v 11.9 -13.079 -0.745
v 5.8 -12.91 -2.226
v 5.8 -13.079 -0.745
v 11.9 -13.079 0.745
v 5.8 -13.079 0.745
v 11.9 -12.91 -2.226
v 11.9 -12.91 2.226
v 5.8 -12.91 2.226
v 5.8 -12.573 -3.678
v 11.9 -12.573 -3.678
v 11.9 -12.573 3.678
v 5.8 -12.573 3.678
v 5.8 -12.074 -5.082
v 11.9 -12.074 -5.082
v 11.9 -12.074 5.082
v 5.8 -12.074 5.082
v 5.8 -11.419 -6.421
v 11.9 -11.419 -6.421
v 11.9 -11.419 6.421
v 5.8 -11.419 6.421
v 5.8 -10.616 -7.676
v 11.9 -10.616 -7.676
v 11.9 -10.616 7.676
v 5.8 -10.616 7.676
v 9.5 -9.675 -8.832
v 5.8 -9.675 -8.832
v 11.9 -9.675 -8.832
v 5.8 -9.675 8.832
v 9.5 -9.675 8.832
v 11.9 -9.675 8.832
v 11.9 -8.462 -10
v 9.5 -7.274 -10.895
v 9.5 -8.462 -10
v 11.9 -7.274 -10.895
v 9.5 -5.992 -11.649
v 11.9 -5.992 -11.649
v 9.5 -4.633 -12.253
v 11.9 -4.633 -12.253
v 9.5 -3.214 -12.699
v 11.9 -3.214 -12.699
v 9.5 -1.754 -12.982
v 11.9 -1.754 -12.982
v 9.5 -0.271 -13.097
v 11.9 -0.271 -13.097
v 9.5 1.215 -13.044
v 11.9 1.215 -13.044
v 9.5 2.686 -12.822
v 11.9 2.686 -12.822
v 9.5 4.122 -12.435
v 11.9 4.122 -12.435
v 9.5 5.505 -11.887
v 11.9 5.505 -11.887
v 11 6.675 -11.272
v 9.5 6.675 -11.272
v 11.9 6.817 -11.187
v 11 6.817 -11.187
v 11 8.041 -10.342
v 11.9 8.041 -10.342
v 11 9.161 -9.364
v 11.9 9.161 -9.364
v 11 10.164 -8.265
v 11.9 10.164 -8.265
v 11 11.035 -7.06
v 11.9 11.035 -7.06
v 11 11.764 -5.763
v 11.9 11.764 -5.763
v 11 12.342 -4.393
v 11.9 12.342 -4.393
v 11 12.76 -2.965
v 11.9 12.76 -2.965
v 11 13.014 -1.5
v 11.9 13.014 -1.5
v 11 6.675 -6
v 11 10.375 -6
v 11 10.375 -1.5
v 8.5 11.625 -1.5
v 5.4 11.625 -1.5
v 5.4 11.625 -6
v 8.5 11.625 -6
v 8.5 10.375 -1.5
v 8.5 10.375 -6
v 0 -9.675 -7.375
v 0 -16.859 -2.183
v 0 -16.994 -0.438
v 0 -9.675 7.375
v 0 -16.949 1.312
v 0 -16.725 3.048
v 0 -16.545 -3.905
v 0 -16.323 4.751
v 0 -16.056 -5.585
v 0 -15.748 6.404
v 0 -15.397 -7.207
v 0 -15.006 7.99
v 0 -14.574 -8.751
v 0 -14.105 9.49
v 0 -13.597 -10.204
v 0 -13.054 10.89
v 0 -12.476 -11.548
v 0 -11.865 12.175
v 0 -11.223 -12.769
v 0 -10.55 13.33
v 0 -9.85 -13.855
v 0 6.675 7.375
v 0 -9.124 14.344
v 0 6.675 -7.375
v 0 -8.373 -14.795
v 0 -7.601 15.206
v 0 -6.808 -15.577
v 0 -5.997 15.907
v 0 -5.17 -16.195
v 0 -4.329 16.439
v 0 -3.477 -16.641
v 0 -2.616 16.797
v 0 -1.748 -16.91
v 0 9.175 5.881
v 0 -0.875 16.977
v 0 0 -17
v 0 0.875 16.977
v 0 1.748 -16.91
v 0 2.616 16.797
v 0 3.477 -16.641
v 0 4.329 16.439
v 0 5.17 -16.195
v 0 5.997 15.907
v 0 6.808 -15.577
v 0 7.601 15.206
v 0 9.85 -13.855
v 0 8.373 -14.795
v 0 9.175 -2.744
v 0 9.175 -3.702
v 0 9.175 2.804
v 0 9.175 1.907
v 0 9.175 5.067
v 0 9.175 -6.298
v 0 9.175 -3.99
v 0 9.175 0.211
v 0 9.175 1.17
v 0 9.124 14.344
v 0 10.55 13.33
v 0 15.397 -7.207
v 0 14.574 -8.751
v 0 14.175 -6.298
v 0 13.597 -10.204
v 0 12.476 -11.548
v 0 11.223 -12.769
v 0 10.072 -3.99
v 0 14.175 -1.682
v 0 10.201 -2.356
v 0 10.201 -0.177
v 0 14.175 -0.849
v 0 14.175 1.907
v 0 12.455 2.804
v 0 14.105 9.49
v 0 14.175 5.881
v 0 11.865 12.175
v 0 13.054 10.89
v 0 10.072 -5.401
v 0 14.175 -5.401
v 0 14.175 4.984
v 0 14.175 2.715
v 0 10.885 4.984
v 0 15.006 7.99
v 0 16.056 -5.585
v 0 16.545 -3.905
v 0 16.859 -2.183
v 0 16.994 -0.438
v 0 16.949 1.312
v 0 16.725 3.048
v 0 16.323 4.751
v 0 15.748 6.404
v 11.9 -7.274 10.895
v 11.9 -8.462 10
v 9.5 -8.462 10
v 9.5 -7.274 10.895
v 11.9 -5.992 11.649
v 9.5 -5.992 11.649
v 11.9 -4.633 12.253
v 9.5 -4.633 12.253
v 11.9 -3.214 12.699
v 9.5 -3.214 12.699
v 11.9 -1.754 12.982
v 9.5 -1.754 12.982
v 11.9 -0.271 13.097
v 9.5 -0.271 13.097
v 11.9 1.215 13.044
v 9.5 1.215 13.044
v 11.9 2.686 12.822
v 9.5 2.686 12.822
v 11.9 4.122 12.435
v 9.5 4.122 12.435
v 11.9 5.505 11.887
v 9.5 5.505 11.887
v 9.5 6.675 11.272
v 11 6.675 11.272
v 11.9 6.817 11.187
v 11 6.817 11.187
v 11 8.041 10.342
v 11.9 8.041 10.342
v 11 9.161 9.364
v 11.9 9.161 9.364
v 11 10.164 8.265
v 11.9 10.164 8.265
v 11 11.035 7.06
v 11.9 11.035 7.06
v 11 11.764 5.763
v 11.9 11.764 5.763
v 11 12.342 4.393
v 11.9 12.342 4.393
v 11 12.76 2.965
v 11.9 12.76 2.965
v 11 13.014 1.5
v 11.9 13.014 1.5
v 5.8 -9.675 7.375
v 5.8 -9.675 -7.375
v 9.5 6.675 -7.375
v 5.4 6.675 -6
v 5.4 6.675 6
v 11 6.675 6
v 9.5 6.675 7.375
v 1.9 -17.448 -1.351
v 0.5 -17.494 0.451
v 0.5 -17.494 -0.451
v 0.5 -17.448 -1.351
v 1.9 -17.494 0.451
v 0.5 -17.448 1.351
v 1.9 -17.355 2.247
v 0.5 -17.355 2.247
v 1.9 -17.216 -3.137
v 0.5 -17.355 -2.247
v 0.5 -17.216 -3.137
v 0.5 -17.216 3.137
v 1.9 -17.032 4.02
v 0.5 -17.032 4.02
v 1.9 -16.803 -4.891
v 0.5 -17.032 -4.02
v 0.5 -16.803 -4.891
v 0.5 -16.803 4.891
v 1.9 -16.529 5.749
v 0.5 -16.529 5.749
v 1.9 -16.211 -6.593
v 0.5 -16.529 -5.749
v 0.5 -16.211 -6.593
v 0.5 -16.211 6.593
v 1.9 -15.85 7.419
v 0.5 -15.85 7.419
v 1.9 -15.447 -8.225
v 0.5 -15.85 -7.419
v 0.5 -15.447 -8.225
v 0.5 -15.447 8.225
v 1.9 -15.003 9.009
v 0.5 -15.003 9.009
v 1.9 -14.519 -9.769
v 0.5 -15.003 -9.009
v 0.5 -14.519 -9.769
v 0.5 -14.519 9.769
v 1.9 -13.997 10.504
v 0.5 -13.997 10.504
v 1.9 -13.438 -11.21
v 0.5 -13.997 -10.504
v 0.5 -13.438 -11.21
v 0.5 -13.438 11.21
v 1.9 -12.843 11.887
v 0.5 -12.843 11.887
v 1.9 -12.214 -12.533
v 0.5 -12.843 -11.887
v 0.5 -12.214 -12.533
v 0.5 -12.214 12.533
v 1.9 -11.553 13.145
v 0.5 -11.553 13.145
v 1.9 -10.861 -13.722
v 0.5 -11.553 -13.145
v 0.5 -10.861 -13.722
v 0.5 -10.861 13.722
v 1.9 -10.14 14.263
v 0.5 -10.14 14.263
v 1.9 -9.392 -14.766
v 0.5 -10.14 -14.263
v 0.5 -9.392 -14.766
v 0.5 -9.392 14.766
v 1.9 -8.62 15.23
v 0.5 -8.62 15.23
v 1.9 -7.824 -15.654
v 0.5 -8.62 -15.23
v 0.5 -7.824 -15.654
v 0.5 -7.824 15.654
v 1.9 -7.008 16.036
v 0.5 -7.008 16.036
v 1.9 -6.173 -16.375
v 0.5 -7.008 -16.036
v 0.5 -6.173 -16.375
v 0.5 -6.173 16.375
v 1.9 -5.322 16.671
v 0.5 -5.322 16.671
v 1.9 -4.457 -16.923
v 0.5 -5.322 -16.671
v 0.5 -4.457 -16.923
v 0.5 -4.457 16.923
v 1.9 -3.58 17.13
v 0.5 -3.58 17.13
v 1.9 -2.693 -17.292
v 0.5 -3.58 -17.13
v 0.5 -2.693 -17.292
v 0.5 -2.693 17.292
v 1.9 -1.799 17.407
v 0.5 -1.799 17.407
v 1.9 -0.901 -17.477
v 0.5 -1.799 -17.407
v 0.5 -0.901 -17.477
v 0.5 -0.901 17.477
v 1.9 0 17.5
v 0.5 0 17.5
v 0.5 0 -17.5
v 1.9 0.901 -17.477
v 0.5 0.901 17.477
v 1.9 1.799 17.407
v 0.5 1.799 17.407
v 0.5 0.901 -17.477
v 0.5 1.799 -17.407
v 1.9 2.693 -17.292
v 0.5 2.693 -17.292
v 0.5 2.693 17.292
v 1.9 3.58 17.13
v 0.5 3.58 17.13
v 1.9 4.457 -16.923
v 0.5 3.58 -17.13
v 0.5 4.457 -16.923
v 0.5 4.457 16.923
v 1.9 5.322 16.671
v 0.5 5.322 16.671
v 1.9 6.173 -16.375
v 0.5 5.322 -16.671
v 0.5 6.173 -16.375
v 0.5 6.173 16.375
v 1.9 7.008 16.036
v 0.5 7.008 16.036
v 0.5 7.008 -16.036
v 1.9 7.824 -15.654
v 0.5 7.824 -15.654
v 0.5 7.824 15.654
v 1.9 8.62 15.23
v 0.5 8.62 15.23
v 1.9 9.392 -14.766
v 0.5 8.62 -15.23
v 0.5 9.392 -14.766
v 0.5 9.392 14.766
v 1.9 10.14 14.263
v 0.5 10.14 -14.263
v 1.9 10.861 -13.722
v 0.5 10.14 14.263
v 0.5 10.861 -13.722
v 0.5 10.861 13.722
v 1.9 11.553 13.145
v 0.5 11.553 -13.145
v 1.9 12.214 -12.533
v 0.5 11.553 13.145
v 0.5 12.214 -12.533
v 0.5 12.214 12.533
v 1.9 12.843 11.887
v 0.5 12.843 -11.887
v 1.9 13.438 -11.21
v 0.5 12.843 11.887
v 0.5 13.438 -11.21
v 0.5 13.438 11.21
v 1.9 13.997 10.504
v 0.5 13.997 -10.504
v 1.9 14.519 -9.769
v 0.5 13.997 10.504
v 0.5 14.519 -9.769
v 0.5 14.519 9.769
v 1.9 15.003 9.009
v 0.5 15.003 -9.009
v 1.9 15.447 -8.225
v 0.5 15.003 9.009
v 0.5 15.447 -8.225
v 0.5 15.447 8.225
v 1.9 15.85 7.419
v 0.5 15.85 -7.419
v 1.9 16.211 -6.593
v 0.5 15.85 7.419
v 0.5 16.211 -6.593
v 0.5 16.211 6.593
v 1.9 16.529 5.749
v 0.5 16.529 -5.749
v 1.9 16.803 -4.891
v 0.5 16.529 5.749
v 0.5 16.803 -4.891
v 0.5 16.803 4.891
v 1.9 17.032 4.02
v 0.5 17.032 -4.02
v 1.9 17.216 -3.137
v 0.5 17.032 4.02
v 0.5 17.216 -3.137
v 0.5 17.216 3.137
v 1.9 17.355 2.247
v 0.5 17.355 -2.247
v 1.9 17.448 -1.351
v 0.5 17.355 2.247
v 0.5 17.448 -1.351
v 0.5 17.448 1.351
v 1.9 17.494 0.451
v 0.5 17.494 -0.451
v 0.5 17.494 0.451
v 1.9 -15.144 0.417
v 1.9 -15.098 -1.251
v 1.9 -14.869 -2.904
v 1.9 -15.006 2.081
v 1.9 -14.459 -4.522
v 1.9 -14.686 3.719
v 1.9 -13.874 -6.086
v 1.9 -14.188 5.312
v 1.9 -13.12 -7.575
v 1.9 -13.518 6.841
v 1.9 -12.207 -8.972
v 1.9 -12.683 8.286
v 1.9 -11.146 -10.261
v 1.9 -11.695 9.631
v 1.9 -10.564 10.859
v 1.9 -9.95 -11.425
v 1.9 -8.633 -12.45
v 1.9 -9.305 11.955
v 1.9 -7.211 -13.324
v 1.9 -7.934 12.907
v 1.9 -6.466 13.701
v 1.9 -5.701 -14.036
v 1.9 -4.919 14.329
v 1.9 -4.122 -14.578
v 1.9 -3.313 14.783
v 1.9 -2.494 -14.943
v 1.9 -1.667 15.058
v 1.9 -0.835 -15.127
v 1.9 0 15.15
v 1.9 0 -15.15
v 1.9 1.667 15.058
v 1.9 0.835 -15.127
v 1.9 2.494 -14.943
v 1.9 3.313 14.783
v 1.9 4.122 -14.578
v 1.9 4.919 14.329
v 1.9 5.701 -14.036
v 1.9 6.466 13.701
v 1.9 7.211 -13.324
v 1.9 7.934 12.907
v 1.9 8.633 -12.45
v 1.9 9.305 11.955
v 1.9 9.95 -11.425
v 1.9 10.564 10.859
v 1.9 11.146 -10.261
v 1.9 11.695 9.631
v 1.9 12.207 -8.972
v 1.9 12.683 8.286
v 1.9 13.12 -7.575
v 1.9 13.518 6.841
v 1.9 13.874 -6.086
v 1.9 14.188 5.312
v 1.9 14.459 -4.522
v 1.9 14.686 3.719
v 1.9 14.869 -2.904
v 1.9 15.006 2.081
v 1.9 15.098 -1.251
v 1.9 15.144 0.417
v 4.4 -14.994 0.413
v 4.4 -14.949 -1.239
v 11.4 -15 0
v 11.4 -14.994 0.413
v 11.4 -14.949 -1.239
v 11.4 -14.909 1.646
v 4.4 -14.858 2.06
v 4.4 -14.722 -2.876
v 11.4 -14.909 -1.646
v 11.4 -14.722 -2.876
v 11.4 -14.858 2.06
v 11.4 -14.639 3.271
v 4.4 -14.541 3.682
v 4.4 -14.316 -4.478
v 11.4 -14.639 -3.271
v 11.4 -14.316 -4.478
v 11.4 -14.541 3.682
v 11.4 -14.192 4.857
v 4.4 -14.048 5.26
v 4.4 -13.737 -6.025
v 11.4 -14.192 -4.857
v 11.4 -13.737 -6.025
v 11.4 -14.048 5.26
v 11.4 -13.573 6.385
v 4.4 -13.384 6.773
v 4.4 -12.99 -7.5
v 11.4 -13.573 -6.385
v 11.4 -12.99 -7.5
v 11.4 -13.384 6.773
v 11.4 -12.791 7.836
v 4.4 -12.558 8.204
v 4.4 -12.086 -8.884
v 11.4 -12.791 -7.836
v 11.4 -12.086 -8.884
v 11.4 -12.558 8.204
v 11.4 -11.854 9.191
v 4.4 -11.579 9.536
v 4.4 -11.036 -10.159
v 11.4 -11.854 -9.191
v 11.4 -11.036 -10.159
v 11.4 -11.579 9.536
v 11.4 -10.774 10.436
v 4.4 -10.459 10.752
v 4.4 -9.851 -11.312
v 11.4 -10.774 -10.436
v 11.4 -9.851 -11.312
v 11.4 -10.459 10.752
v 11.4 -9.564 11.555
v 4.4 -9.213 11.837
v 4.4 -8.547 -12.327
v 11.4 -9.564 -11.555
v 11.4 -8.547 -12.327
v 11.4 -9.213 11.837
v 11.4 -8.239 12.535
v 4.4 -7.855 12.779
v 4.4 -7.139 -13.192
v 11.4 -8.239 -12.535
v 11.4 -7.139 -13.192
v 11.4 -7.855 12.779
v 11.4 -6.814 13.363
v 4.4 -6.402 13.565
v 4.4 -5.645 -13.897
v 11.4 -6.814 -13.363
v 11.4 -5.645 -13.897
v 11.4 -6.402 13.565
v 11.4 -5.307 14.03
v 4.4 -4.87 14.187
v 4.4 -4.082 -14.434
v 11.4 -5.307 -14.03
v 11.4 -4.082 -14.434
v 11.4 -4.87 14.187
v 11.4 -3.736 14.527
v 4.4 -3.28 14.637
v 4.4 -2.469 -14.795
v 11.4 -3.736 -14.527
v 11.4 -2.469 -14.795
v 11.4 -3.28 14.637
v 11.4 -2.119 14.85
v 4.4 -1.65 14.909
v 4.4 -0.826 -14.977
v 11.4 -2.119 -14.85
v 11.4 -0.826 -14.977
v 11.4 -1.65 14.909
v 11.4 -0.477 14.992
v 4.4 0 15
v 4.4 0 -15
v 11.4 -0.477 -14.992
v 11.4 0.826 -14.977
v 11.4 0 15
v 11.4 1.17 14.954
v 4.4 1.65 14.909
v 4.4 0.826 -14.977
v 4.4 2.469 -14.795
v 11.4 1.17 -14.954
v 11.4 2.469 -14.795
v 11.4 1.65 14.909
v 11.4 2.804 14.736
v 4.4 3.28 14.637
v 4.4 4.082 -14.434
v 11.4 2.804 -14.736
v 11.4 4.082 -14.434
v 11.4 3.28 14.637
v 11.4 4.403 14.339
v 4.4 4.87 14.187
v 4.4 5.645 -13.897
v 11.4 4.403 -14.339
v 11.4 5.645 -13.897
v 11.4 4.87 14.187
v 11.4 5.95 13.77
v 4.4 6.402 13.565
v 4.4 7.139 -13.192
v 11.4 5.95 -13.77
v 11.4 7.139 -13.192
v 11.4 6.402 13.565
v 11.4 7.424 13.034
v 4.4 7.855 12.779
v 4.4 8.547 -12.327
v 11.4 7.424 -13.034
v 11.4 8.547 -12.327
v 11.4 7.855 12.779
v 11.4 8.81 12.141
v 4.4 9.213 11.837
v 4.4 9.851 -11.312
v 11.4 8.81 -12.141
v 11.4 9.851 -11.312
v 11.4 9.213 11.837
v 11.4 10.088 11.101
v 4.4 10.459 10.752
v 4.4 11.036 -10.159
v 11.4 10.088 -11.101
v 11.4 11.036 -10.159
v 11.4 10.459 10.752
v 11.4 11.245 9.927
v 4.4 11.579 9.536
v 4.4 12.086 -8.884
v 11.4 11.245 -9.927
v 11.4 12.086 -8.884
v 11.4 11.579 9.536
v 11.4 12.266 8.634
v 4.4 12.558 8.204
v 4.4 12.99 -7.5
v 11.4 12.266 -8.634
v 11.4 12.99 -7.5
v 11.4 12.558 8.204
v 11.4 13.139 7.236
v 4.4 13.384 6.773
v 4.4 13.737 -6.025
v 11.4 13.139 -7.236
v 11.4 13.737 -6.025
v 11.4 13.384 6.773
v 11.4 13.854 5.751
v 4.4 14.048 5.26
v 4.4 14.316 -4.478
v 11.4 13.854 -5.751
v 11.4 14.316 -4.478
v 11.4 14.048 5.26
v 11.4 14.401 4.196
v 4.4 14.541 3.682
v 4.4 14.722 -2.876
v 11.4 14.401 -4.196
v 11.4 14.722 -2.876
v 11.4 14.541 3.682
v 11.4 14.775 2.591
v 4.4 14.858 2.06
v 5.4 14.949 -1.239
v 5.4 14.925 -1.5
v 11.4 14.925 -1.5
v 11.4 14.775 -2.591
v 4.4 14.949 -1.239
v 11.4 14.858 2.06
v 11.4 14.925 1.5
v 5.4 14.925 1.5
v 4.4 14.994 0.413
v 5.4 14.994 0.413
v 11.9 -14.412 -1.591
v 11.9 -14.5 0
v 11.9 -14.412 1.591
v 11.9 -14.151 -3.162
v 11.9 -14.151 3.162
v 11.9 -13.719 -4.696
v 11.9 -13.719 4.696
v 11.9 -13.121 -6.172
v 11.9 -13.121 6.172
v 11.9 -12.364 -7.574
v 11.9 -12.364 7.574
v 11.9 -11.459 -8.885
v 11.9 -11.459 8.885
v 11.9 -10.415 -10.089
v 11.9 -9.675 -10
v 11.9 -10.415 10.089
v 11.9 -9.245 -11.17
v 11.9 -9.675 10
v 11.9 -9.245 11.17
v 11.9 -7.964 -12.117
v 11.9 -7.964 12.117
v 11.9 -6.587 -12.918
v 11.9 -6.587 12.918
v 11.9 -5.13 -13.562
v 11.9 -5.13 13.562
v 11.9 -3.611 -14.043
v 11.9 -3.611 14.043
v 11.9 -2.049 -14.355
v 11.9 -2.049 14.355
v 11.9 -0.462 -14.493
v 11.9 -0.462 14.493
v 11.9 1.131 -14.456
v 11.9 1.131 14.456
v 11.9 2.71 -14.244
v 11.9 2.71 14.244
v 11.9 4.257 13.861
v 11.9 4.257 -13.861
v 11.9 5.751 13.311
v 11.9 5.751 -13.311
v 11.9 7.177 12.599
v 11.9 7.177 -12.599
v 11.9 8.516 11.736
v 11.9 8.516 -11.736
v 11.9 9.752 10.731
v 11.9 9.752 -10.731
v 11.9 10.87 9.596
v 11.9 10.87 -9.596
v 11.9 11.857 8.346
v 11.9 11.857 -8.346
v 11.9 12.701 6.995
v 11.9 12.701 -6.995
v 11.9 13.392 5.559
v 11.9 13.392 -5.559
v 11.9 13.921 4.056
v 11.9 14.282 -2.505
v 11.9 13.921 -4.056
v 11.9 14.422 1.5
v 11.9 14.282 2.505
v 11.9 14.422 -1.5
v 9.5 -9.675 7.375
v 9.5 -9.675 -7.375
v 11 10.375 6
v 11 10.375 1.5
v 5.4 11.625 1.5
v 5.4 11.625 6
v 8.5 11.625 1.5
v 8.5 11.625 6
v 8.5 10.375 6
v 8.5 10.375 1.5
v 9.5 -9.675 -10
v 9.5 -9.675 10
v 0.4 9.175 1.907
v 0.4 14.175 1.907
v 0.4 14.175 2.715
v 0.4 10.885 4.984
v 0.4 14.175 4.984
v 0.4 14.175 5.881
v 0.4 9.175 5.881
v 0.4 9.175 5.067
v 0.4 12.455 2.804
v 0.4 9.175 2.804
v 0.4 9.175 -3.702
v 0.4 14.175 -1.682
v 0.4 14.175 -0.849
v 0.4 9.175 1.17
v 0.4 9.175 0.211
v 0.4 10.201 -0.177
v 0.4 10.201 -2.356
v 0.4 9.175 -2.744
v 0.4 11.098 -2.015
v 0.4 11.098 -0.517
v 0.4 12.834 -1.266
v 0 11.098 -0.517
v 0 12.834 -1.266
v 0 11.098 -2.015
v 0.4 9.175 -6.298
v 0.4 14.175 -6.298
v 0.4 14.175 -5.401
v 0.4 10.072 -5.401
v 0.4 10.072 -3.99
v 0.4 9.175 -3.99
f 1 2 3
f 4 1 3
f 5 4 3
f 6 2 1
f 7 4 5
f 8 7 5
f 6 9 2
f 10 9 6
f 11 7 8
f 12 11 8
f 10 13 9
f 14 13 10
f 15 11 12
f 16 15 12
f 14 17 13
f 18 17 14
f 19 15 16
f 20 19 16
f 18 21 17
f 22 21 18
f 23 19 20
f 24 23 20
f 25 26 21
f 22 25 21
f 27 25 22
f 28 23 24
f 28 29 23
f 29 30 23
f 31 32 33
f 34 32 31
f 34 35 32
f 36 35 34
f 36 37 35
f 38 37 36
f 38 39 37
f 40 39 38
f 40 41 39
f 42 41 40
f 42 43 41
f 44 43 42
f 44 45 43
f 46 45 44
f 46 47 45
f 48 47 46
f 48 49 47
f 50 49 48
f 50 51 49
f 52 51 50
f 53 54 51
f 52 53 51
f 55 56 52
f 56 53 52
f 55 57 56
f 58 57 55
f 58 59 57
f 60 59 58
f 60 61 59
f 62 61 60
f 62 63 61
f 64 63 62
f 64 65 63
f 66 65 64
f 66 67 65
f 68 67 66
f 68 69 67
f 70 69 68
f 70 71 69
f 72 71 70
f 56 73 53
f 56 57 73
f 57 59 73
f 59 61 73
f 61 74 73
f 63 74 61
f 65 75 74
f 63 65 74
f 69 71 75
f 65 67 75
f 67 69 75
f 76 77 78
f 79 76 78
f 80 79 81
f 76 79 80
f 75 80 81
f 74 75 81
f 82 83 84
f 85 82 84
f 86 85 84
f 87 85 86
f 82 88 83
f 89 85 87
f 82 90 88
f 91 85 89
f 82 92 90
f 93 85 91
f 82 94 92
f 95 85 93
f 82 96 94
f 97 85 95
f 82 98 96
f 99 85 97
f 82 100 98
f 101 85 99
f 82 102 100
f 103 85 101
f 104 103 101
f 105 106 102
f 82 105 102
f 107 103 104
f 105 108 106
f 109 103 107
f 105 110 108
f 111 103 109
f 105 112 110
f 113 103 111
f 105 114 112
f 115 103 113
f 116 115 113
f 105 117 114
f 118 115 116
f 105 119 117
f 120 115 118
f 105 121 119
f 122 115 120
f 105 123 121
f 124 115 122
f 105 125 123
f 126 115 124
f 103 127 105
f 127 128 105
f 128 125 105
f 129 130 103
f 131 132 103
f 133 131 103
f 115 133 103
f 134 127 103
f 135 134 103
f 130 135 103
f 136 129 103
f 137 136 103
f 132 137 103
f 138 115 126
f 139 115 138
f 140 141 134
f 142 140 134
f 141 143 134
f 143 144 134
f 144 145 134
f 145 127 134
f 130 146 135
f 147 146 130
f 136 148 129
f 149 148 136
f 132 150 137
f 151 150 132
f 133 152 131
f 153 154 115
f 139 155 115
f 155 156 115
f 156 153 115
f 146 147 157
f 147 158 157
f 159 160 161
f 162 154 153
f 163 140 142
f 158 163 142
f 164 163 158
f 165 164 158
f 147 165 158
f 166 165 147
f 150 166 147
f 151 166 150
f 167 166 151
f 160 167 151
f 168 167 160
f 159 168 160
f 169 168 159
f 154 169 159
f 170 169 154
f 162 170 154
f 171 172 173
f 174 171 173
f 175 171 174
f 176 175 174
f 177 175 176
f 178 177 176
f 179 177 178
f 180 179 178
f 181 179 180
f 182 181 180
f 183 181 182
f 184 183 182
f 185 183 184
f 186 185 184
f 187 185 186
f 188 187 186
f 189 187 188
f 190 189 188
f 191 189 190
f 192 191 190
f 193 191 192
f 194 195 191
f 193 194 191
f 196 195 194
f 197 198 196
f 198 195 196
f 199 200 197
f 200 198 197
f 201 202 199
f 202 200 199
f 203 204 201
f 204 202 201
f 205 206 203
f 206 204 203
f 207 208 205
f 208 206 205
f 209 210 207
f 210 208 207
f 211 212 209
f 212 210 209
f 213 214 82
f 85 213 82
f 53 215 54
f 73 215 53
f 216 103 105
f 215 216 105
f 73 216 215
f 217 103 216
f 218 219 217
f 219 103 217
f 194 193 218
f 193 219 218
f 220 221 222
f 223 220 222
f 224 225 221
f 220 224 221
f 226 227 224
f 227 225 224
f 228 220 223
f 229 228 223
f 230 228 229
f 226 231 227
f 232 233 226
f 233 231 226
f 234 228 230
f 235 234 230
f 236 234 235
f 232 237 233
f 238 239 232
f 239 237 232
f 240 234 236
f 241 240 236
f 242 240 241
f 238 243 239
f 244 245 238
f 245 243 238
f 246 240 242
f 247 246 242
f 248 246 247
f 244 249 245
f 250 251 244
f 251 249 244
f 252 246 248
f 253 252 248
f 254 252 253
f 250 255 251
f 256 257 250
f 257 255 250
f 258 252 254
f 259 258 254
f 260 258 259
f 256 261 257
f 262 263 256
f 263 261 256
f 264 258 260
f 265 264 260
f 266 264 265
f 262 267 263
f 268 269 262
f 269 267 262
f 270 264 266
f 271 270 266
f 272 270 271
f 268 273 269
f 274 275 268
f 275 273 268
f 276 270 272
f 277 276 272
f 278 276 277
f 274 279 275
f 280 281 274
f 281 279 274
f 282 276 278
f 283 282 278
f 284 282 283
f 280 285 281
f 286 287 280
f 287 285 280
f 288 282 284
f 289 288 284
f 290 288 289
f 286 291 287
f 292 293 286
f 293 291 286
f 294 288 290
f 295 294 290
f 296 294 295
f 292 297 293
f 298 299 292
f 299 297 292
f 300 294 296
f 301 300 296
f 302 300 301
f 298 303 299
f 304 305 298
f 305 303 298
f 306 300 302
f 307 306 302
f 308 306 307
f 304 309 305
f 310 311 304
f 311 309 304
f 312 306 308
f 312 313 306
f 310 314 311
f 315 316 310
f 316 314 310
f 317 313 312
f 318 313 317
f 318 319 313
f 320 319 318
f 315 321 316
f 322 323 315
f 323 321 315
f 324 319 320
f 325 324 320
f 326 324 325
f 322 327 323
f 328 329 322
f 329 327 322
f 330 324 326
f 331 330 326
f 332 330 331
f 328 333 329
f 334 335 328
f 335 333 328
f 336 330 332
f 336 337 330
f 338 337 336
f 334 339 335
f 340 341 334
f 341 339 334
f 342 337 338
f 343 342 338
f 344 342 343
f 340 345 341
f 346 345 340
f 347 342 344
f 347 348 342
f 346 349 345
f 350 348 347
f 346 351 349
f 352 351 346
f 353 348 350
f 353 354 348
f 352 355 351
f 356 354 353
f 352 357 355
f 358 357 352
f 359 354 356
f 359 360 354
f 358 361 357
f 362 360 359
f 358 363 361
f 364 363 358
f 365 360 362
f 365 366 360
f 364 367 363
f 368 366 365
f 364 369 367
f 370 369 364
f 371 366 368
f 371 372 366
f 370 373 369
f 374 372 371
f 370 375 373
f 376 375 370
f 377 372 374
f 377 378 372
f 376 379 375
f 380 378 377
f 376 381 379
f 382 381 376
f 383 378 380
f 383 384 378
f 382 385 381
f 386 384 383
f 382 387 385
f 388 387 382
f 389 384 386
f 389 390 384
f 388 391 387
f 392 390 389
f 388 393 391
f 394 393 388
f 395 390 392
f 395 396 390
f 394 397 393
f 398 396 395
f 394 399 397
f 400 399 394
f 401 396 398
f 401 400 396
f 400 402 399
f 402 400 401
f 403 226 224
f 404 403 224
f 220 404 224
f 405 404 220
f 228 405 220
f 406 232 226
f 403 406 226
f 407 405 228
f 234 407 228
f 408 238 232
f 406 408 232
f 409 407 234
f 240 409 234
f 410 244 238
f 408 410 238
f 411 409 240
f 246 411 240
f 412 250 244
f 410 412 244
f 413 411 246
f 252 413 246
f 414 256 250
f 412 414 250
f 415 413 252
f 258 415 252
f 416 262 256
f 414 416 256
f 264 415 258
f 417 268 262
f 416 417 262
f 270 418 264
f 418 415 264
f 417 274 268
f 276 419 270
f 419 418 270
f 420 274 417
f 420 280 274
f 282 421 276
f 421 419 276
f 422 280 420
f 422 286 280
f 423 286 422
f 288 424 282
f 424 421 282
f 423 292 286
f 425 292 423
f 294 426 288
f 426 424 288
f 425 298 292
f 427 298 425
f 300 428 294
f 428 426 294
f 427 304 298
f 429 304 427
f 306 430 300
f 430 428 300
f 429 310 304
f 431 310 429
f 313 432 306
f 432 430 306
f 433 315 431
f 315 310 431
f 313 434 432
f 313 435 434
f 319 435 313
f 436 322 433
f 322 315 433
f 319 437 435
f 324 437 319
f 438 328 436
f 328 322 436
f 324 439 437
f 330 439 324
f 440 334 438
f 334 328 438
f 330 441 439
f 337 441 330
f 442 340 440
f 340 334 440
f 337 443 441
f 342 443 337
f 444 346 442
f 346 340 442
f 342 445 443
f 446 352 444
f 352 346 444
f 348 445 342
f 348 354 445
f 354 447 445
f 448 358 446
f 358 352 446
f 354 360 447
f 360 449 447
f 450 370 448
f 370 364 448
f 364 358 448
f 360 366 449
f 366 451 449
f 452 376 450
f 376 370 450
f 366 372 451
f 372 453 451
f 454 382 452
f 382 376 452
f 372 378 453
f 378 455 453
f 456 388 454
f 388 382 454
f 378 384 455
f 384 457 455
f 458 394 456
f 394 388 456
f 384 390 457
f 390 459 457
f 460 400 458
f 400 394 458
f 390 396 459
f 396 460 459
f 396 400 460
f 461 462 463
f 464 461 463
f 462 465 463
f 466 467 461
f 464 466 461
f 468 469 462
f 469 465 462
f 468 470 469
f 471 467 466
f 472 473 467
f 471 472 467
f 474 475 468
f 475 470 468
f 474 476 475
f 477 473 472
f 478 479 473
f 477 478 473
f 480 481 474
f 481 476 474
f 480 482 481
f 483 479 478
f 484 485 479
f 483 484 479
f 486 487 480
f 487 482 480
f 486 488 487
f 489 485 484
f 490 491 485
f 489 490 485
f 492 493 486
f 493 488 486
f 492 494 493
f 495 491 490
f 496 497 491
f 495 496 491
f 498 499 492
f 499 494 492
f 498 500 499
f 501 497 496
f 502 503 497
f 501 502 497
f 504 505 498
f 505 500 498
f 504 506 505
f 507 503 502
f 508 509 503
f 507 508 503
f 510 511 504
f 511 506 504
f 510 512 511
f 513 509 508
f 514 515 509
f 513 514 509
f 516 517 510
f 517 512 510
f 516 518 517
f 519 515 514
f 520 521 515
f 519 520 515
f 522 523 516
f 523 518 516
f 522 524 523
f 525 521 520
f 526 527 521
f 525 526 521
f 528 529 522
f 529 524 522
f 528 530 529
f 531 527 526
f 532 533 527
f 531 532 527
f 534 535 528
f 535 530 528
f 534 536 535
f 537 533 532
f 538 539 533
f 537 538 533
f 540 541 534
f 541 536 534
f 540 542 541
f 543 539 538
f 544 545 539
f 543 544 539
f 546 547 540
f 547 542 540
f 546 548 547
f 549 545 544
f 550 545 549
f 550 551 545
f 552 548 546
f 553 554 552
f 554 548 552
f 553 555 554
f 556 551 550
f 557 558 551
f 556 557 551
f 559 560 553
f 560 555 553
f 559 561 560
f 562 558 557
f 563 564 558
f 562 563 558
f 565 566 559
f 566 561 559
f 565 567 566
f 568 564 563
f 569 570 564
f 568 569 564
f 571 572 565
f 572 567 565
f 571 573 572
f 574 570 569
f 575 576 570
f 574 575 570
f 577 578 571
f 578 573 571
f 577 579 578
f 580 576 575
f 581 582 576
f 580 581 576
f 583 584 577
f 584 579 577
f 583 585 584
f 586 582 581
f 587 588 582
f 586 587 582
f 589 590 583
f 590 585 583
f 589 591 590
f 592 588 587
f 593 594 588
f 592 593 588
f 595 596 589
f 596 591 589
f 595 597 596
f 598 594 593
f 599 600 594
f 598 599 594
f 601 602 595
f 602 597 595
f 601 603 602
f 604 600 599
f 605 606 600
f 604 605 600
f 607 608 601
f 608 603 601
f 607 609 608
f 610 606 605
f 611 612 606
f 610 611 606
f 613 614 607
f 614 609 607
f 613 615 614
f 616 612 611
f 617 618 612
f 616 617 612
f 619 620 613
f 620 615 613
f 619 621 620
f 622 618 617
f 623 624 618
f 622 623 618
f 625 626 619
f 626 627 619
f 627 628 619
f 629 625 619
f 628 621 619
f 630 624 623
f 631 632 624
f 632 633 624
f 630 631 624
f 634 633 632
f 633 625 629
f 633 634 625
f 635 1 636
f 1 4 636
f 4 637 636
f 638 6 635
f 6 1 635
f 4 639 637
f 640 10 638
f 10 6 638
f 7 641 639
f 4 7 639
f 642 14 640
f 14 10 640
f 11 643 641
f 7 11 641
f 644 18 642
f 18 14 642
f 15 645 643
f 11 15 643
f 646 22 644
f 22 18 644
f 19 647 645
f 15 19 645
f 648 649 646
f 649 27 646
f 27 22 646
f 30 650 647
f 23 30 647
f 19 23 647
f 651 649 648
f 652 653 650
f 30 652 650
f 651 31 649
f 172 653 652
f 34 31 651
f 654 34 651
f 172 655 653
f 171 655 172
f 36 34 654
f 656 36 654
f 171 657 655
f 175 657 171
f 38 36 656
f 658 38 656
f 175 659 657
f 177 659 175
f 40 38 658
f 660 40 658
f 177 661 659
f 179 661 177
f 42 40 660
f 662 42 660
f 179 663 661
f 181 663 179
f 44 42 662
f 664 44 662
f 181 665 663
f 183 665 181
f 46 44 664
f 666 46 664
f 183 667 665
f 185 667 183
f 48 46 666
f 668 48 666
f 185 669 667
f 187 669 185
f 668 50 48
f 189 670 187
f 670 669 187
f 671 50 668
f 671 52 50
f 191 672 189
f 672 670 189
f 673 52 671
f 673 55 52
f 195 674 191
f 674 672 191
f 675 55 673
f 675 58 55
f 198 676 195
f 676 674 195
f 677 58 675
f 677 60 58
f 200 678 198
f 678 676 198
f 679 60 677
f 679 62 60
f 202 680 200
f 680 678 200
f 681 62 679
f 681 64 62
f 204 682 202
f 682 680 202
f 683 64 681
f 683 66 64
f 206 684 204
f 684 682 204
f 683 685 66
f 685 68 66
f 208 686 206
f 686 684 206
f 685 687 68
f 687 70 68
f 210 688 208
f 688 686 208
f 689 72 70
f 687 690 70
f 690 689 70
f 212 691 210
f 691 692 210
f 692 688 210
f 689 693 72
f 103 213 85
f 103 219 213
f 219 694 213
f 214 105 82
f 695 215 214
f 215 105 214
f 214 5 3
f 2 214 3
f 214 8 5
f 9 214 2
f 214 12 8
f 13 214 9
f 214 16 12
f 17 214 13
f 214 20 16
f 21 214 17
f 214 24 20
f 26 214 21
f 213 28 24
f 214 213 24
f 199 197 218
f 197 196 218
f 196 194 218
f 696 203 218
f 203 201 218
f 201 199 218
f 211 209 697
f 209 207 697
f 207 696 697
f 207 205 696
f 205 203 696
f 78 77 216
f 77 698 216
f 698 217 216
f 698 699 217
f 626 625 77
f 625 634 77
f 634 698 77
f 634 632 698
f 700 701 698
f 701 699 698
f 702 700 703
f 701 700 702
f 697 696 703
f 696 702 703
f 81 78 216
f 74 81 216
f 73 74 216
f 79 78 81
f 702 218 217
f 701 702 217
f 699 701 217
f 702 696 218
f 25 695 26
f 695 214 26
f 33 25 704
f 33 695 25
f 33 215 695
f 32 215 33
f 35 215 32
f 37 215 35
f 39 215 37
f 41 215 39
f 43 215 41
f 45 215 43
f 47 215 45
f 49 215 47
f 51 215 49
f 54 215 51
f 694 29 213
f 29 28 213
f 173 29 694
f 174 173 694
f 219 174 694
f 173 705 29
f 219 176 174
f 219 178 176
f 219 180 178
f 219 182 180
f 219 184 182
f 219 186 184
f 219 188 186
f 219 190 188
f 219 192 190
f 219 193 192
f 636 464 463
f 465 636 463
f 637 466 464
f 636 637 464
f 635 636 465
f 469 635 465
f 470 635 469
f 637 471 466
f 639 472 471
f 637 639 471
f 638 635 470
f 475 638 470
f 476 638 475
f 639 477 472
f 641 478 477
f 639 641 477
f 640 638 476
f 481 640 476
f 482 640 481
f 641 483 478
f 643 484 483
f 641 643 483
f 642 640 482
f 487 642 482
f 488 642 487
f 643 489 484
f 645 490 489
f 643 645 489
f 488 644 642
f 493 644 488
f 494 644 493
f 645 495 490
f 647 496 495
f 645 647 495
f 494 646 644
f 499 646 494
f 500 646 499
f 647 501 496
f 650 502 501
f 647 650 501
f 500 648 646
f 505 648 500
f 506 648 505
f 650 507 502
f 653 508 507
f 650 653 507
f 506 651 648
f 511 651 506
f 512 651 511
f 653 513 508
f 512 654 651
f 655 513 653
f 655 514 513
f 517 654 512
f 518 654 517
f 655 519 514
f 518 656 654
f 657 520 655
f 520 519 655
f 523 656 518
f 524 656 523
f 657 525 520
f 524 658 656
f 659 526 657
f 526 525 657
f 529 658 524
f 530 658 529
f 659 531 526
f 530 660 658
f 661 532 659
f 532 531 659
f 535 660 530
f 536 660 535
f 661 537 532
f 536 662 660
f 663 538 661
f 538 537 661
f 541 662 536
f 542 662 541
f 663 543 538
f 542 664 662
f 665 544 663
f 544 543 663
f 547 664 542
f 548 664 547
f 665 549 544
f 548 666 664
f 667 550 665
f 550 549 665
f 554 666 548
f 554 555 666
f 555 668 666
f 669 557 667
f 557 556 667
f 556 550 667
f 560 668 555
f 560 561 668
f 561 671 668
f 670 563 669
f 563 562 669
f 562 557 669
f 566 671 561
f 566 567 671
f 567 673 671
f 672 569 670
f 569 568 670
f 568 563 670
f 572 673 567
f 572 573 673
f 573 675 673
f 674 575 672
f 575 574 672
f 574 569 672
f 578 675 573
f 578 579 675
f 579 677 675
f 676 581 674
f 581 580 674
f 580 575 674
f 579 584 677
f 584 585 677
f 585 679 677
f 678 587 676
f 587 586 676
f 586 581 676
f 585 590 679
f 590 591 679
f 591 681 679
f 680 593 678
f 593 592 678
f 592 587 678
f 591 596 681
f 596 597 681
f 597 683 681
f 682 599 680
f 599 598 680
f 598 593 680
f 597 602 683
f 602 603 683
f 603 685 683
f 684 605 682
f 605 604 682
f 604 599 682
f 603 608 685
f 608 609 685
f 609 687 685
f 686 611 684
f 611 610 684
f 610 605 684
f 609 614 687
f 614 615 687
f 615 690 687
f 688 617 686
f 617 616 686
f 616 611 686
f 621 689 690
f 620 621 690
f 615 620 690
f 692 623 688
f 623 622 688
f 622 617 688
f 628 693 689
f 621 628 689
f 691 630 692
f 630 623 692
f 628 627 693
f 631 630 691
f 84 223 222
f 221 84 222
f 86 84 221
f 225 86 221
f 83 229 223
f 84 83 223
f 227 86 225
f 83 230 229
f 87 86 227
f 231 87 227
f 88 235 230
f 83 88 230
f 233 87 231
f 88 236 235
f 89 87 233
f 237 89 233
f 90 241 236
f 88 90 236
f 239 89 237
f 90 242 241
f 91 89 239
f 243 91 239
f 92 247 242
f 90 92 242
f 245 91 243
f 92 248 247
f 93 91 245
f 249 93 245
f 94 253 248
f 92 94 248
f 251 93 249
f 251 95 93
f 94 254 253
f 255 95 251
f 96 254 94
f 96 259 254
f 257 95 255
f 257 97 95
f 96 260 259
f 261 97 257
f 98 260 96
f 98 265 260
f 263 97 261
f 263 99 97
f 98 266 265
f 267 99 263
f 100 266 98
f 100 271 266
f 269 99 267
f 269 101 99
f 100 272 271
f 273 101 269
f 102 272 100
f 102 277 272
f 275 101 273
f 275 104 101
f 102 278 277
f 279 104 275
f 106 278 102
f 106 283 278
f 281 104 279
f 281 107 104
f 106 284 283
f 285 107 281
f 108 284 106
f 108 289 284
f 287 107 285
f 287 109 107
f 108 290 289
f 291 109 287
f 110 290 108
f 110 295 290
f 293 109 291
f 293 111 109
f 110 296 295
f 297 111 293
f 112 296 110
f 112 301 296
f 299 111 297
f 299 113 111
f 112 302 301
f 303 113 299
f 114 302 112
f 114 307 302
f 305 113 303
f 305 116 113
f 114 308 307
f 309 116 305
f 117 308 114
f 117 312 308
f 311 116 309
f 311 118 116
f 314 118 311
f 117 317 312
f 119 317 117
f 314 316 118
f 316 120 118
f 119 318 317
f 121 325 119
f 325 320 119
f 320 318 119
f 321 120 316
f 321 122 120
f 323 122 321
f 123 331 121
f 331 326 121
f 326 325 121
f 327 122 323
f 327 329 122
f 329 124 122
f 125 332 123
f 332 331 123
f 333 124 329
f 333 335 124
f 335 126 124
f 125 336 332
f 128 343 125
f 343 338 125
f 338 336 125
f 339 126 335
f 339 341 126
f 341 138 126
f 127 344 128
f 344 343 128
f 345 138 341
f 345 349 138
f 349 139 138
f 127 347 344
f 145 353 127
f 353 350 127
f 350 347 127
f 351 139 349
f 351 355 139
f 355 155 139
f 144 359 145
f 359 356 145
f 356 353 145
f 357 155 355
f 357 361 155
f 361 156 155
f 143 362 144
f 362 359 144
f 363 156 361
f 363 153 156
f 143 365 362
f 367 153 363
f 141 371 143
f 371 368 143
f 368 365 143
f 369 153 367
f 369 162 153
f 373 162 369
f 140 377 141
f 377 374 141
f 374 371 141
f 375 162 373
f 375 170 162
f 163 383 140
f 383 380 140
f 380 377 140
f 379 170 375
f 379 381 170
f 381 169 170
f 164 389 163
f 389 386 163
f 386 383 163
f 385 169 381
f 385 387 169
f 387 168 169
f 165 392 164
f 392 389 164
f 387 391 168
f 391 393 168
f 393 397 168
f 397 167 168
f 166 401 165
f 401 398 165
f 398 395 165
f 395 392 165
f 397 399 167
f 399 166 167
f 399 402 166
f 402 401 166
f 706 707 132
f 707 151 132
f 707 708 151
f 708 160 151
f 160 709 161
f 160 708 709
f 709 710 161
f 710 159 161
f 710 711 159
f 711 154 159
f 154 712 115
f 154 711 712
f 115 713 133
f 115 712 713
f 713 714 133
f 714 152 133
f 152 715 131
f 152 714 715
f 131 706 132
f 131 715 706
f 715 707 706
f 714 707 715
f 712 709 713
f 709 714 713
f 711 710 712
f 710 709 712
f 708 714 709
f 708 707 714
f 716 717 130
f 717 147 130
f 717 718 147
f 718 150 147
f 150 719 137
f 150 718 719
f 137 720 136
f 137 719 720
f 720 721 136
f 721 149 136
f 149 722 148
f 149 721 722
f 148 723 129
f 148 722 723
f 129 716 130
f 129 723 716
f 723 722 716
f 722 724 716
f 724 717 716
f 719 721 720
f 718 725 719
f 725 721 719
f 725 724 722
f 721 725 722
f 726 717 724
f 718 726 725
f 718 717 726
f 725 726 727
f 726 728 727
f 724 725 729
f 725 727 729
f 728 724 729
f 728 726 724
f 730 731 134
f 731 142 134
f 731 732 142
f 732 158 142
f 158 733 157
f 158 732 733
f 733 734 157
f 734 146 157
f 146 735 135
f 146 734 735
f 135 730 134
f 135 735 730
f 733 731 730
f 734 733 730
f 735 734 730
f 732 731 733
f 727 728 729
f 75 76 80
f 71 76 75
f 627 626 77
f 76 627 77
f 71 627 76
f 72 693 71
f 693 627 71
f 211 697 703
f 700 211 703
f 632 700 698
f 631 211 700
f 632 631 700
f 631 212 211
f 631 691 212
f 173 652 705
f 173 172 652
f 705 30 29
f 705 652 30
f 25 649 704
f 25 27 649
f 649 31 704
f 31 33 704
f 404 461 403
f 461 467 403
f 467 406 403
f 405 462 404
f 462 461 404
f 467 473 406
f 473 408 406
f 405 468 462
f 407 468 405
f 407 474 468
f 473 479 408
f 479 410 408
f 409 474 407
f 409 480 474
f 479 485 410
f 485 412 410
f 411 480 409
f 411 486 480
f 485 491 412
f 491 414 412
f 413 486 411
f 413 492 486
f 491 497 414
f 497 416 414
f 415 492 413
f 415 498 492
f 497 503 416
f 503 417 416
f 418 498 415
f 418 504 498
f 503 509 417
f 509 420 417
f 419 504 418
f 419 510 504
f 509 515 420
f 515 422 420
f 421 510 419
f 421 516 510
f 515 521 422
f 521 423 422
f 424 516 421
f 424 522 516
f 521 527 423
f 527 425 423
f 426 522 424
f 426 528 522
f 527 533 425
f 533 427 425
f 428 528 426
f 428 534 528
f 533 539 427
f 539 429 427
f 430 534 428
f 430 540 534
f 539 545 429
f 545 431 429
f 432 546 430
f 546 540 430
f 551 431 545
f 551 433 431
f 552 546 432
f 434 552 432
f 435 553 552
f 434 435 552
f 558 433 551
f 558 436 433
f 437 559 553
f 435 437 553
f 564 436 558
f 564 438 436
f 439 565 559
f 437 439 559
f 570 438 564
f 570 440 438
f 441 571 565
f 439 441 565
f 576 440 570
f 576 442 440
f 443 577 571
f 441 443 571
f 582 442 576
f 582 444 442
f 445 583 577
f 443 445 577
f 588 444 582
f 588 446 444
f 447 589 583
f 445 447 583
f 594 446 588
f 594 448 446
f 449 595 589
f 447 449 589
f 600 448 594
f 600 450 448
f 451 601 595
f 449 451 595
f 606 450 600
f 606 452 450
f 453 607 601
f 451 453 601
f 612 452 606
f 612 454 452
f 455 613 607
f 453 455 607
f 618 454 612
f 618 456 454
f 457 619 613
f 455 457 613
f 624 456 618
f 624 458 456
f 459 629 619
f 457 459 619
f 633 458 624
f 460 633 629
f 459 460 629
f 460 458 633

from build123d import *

# Parameters (mm, degrees)
SKIZZE2_W                       = 14.75
SKIZZE2_H                       = 16.35
SCHNITT_LINEAR_AUSTRAGEN1_DEPTH = 28.461063344
AUFSATZ_LINEAR_AUSTRAGEN1_DEPTH = 3.9
AUFSATZ_LINEAR_AUSTRAGEN2_DEPTH = 9.1
SCHNITT_LINEAR_AUSTRAGEN2_DEPTH = 6
AUFSATZ_LINEAR_AUSTRAGEN3_DEPTH = 7.6
FASE1_SIZE                      = 0.5
SCHNITT_LINEAR_AUSTRAGEN3_DEPTH = 0.4
SCHNITT_LINEAR_AUSTRAGEN4_REACH = 29.461
SKIZZE13_W                      = 20
SKIZZE13_H                      = 1.212730801
SCHNITT_LINEAR_AUSTRAGEN6_DEPTH = 2.4


with BuildPart() as part:
    # Skizze1 → Rotation1 (revolve)
    with BuildSketch(Plane(origin=(0, 0, 0), x_dir=(1, 0, 0), z_dir=(0, 1, 0)), mode=Mode.PRIVATE) as rotation1_sk:
        Polygon((0, 0), (0, 17.5), (1.9, 17.5), (1.9, 15), (11.9, 15), (11.9, 13.1), (1.9, 13.1), (1.9, 0), align=None)
    revolve(rotation1_sk.sketch.rotate(Axis((-3.369811321, 0, 0), (1, 0, 0)), 180), axis=Axis((-3.369811321, 0, 0), (1, 0, 0)))

    # Skizze2 → Schnitt-Linear austragen1 (cut, through all)
    with BuildSketch(Plane.ZY):
        with Locations((0, -1.5)):
            Rectangle(SKIZZE2_W, SKIZZE2_H)
    extrude(amount=-SCHNITT_LINEAR_AUSTRAGEN1_DEPTH, mode=Mode.SUBTRACT)

    # Skizze3 → Aufsatz-Linear austragen1 (add)
    with BuildSketch(Plane(origin=(1.9, 0, 0), x_dir=(0, 0, -1), z_dir=(1, 0, 0))):
        with BuildLine():
            Line((-8.832008548, -9.675), (8.832008548, -9.675))
            ThreePointArc((8.832008548, -9.675), (0, -13.1), (-8.832008548, -9.675))
        make_face()
    extrude(amount=AUFSATZ_LINEAR_AUSTRAGEN1_DEPTH)

    # Skizze4 → Aufsatz-Linear austragen2 (add)
    with BuildSketch(Plane(origin=(1.9, 0, 0), x_dir=(0, 0, -1), z_dir=(1, 0, 0))):
        with BuildLine():
            Line((-11.271839912, 6.675), (11.271839912, 6.675))
            ThreePointArc((11.271839912, 6.675), (0, 13.1), (-11.271839912, 6.675))
        make_face()
    extrude(amount=AUFSATZ_LINEAR_AUSTRAGEN2_DEPTH)

    # Skizze6 → Schnitt-Linear austragen2 (cut, symmetric)
    with BuildSketch(Plane.XY):
        Polygon((5.4, 6.675), (5.4, 11.625), (8.5, 11.625), (8.5, 10.375), (11, 10.375), (11, 6.675), align=None)
    extrude(amount=SCHNITT_LINEAR_AUSTRAGEN2_DEPTH, both=True, mode=Mode.SUBTRACT)

    # Skizze7 → Aufsatz-Linear austragen3 (add)
    with BuildSketch(Plane(origin=(1.9, 0, 0), x_dir=(0, 0, -1), z_dir=(1, 0, 0))):
        with BuildLine():
            Line((-11.271839912, 6.675), (-7.375, 6.675))
            Line((-7.375, 6.675), (-7.375, -9.675))
            Line((-7.375, -9.675), (-8.832008548, -9.675))
            ThreePointArc((-8.832008548, -9.675), (-12.956535252, -1.933441044), (-11.271839912, 6.675))
        make_face()
        with BuildLine():
            Line((7.375, 6.675), (7.375, -9.675))
            Line((7.375, -9.675), (8.832008548, -9.675))
            ThreePointArc((8.832008548, -9.675), (12.956535252, -1.933441044), (11.271839912, 6.675))
            Line((11.271839912, 6.675), (7.375, 6.675))
        make_face()
    extrude(amount=AUFSATZ_LINEAR_AUSTRAGEN3_DEPTH)

    # Fase1
    fase1_edges = [part.edges().sort_by_distance(p)[0] for p in [
        (11.9, 0, -15),
        (0, 0, -17.5),
    ]]
    chamfer(fase1_edges, length=FASE1_SIZE)

    # Skizze8 → Schnitt-Linear austragen3 (cut)
    # profile 1 of 3: a face of its own
    with BuildSketch(Plane.ZY):
        Polygon((-6.298076923, 14.175), (-5.400641026, 14.175), (-5.400641026, 10.072435897), (-3.990384615, 10.072435897), (-3.990384615, 9.175), (-6.298076923, 9.175), align=None)
    # profile 2 of 3: a face of its own
    with BuildSketch(Plane.ZY):
        Polygon((-1.681690705, 14.175), (-0.849358974, 14.175), (1.169871795, 9.175), (0.211338141, 9.175), (-0.177283654, 10.200641026), (-2.355769231, 10.200641026), (-2.744391026, 9.175), (-3.701923077, 9.175), align=None)
        Polygon((-1.266025641, 12.833854167), (-2.015224359, 11.098076923), (-0.516826923, 11.098076923), align=None, mode=Mode.SUBTRACT)
    # profile 3 of 3: a face of its own
    with BuildSketch(Plane.ZY):
        Polygon((1.907051282, 14.175), (2.715344551, 14.175), (4.983974359, 10.884735577), (4.983974359, 14.175), (5.881410256, 14.175), (5.881410256, 9.175), (5.067107372, 9.175), (2.804487179, 12.455248397), (2.804487179, 9.175), (1.907051282, 9.175), align=None)
    extrude(amount=-SCHNITT_LINEAR_AUSTRAGEN3_DEPTH, mode=Mode.SUBTRACT)

    # Schnitt-Linear austragen4: up to this face of the body (flat: up to its plane)
    schnitt_linear_austragen4_end = Plane(part.part.faces().sort_by_distance((5.4, 9.15, 0))[0])
    # Skizze10 → Schnitt-Linear austragen4 (cut, up to the picked face)
    with BuildSketch(Plane(origin=(11.9, 0, 0), x_dir=(0, 0, -1), z_dir=(1, 0, 0)), mode=Mode.PRIVATE) as schnitt_linear_austragen4_sk1:
        with BuildLine():
            Line((-1.5, 10.375), (-1.5, 14.924811557))
            ThreePointArc((-1.5, 14.924811557), (0, 15), (1.5, 14.924811557))
            Line((1.5, 14.924811557), (1.5, 10.375))
            Line((1.5, 10.375), (-1.5, 10.375))
        make_face()
    schnitt_linear_austragen4_tool1 = split(extrude(schnitt_linear_austragen4_sk1.sketch, amount=-SCHNITT_LINEAR_AUSTRAGEN4_REACH, mode=Mode.PRIVATE), bisect_by=schnitt_linear_austragen4_end, keep=Keep.BOTH, mode=Mode.PRIVATE)
    add(schnitt_linear_austragen4_tool1.solids().sort_by(Axis((11.9, 12.675036, 0), (-1, 0, 0)))[0], mode=Mode.SUBTRACT)

    # Skizze13 → Schnitt-Linear austragen6 (cut)
    with BuildSketch(Plane(origin=(11.9, 0, 0), x_dir=(0, 0, -1), z_dir=(1, 0, 0))):
        with Locations((0, -9.0686346)):
            Rectangle(SKIZZE13_W, SKIZZE13_H)
    extrude(amount=-SCHNITT_LINEAR_AUSTRAGEN6_DEPTH, mode=Mode.SUBTRACT)

    # Skizze14 → Rotation2 (revolve)
    with BuildSketch(Plane.XY, mode=Mode.PRIVATE) as rotation2_sk:
        Polygon((4.4, 15), (1.9, 15.15), (1.9, 15), align=None)
    revolve(rotation2_sk.sketch.rotate(Axis((-3.369811321, 0, 0), (-1, 0, 0)), 90), axis=Axis((-3.369811321, 0, 0), (-1, 0, 0)))


solid = part.part
